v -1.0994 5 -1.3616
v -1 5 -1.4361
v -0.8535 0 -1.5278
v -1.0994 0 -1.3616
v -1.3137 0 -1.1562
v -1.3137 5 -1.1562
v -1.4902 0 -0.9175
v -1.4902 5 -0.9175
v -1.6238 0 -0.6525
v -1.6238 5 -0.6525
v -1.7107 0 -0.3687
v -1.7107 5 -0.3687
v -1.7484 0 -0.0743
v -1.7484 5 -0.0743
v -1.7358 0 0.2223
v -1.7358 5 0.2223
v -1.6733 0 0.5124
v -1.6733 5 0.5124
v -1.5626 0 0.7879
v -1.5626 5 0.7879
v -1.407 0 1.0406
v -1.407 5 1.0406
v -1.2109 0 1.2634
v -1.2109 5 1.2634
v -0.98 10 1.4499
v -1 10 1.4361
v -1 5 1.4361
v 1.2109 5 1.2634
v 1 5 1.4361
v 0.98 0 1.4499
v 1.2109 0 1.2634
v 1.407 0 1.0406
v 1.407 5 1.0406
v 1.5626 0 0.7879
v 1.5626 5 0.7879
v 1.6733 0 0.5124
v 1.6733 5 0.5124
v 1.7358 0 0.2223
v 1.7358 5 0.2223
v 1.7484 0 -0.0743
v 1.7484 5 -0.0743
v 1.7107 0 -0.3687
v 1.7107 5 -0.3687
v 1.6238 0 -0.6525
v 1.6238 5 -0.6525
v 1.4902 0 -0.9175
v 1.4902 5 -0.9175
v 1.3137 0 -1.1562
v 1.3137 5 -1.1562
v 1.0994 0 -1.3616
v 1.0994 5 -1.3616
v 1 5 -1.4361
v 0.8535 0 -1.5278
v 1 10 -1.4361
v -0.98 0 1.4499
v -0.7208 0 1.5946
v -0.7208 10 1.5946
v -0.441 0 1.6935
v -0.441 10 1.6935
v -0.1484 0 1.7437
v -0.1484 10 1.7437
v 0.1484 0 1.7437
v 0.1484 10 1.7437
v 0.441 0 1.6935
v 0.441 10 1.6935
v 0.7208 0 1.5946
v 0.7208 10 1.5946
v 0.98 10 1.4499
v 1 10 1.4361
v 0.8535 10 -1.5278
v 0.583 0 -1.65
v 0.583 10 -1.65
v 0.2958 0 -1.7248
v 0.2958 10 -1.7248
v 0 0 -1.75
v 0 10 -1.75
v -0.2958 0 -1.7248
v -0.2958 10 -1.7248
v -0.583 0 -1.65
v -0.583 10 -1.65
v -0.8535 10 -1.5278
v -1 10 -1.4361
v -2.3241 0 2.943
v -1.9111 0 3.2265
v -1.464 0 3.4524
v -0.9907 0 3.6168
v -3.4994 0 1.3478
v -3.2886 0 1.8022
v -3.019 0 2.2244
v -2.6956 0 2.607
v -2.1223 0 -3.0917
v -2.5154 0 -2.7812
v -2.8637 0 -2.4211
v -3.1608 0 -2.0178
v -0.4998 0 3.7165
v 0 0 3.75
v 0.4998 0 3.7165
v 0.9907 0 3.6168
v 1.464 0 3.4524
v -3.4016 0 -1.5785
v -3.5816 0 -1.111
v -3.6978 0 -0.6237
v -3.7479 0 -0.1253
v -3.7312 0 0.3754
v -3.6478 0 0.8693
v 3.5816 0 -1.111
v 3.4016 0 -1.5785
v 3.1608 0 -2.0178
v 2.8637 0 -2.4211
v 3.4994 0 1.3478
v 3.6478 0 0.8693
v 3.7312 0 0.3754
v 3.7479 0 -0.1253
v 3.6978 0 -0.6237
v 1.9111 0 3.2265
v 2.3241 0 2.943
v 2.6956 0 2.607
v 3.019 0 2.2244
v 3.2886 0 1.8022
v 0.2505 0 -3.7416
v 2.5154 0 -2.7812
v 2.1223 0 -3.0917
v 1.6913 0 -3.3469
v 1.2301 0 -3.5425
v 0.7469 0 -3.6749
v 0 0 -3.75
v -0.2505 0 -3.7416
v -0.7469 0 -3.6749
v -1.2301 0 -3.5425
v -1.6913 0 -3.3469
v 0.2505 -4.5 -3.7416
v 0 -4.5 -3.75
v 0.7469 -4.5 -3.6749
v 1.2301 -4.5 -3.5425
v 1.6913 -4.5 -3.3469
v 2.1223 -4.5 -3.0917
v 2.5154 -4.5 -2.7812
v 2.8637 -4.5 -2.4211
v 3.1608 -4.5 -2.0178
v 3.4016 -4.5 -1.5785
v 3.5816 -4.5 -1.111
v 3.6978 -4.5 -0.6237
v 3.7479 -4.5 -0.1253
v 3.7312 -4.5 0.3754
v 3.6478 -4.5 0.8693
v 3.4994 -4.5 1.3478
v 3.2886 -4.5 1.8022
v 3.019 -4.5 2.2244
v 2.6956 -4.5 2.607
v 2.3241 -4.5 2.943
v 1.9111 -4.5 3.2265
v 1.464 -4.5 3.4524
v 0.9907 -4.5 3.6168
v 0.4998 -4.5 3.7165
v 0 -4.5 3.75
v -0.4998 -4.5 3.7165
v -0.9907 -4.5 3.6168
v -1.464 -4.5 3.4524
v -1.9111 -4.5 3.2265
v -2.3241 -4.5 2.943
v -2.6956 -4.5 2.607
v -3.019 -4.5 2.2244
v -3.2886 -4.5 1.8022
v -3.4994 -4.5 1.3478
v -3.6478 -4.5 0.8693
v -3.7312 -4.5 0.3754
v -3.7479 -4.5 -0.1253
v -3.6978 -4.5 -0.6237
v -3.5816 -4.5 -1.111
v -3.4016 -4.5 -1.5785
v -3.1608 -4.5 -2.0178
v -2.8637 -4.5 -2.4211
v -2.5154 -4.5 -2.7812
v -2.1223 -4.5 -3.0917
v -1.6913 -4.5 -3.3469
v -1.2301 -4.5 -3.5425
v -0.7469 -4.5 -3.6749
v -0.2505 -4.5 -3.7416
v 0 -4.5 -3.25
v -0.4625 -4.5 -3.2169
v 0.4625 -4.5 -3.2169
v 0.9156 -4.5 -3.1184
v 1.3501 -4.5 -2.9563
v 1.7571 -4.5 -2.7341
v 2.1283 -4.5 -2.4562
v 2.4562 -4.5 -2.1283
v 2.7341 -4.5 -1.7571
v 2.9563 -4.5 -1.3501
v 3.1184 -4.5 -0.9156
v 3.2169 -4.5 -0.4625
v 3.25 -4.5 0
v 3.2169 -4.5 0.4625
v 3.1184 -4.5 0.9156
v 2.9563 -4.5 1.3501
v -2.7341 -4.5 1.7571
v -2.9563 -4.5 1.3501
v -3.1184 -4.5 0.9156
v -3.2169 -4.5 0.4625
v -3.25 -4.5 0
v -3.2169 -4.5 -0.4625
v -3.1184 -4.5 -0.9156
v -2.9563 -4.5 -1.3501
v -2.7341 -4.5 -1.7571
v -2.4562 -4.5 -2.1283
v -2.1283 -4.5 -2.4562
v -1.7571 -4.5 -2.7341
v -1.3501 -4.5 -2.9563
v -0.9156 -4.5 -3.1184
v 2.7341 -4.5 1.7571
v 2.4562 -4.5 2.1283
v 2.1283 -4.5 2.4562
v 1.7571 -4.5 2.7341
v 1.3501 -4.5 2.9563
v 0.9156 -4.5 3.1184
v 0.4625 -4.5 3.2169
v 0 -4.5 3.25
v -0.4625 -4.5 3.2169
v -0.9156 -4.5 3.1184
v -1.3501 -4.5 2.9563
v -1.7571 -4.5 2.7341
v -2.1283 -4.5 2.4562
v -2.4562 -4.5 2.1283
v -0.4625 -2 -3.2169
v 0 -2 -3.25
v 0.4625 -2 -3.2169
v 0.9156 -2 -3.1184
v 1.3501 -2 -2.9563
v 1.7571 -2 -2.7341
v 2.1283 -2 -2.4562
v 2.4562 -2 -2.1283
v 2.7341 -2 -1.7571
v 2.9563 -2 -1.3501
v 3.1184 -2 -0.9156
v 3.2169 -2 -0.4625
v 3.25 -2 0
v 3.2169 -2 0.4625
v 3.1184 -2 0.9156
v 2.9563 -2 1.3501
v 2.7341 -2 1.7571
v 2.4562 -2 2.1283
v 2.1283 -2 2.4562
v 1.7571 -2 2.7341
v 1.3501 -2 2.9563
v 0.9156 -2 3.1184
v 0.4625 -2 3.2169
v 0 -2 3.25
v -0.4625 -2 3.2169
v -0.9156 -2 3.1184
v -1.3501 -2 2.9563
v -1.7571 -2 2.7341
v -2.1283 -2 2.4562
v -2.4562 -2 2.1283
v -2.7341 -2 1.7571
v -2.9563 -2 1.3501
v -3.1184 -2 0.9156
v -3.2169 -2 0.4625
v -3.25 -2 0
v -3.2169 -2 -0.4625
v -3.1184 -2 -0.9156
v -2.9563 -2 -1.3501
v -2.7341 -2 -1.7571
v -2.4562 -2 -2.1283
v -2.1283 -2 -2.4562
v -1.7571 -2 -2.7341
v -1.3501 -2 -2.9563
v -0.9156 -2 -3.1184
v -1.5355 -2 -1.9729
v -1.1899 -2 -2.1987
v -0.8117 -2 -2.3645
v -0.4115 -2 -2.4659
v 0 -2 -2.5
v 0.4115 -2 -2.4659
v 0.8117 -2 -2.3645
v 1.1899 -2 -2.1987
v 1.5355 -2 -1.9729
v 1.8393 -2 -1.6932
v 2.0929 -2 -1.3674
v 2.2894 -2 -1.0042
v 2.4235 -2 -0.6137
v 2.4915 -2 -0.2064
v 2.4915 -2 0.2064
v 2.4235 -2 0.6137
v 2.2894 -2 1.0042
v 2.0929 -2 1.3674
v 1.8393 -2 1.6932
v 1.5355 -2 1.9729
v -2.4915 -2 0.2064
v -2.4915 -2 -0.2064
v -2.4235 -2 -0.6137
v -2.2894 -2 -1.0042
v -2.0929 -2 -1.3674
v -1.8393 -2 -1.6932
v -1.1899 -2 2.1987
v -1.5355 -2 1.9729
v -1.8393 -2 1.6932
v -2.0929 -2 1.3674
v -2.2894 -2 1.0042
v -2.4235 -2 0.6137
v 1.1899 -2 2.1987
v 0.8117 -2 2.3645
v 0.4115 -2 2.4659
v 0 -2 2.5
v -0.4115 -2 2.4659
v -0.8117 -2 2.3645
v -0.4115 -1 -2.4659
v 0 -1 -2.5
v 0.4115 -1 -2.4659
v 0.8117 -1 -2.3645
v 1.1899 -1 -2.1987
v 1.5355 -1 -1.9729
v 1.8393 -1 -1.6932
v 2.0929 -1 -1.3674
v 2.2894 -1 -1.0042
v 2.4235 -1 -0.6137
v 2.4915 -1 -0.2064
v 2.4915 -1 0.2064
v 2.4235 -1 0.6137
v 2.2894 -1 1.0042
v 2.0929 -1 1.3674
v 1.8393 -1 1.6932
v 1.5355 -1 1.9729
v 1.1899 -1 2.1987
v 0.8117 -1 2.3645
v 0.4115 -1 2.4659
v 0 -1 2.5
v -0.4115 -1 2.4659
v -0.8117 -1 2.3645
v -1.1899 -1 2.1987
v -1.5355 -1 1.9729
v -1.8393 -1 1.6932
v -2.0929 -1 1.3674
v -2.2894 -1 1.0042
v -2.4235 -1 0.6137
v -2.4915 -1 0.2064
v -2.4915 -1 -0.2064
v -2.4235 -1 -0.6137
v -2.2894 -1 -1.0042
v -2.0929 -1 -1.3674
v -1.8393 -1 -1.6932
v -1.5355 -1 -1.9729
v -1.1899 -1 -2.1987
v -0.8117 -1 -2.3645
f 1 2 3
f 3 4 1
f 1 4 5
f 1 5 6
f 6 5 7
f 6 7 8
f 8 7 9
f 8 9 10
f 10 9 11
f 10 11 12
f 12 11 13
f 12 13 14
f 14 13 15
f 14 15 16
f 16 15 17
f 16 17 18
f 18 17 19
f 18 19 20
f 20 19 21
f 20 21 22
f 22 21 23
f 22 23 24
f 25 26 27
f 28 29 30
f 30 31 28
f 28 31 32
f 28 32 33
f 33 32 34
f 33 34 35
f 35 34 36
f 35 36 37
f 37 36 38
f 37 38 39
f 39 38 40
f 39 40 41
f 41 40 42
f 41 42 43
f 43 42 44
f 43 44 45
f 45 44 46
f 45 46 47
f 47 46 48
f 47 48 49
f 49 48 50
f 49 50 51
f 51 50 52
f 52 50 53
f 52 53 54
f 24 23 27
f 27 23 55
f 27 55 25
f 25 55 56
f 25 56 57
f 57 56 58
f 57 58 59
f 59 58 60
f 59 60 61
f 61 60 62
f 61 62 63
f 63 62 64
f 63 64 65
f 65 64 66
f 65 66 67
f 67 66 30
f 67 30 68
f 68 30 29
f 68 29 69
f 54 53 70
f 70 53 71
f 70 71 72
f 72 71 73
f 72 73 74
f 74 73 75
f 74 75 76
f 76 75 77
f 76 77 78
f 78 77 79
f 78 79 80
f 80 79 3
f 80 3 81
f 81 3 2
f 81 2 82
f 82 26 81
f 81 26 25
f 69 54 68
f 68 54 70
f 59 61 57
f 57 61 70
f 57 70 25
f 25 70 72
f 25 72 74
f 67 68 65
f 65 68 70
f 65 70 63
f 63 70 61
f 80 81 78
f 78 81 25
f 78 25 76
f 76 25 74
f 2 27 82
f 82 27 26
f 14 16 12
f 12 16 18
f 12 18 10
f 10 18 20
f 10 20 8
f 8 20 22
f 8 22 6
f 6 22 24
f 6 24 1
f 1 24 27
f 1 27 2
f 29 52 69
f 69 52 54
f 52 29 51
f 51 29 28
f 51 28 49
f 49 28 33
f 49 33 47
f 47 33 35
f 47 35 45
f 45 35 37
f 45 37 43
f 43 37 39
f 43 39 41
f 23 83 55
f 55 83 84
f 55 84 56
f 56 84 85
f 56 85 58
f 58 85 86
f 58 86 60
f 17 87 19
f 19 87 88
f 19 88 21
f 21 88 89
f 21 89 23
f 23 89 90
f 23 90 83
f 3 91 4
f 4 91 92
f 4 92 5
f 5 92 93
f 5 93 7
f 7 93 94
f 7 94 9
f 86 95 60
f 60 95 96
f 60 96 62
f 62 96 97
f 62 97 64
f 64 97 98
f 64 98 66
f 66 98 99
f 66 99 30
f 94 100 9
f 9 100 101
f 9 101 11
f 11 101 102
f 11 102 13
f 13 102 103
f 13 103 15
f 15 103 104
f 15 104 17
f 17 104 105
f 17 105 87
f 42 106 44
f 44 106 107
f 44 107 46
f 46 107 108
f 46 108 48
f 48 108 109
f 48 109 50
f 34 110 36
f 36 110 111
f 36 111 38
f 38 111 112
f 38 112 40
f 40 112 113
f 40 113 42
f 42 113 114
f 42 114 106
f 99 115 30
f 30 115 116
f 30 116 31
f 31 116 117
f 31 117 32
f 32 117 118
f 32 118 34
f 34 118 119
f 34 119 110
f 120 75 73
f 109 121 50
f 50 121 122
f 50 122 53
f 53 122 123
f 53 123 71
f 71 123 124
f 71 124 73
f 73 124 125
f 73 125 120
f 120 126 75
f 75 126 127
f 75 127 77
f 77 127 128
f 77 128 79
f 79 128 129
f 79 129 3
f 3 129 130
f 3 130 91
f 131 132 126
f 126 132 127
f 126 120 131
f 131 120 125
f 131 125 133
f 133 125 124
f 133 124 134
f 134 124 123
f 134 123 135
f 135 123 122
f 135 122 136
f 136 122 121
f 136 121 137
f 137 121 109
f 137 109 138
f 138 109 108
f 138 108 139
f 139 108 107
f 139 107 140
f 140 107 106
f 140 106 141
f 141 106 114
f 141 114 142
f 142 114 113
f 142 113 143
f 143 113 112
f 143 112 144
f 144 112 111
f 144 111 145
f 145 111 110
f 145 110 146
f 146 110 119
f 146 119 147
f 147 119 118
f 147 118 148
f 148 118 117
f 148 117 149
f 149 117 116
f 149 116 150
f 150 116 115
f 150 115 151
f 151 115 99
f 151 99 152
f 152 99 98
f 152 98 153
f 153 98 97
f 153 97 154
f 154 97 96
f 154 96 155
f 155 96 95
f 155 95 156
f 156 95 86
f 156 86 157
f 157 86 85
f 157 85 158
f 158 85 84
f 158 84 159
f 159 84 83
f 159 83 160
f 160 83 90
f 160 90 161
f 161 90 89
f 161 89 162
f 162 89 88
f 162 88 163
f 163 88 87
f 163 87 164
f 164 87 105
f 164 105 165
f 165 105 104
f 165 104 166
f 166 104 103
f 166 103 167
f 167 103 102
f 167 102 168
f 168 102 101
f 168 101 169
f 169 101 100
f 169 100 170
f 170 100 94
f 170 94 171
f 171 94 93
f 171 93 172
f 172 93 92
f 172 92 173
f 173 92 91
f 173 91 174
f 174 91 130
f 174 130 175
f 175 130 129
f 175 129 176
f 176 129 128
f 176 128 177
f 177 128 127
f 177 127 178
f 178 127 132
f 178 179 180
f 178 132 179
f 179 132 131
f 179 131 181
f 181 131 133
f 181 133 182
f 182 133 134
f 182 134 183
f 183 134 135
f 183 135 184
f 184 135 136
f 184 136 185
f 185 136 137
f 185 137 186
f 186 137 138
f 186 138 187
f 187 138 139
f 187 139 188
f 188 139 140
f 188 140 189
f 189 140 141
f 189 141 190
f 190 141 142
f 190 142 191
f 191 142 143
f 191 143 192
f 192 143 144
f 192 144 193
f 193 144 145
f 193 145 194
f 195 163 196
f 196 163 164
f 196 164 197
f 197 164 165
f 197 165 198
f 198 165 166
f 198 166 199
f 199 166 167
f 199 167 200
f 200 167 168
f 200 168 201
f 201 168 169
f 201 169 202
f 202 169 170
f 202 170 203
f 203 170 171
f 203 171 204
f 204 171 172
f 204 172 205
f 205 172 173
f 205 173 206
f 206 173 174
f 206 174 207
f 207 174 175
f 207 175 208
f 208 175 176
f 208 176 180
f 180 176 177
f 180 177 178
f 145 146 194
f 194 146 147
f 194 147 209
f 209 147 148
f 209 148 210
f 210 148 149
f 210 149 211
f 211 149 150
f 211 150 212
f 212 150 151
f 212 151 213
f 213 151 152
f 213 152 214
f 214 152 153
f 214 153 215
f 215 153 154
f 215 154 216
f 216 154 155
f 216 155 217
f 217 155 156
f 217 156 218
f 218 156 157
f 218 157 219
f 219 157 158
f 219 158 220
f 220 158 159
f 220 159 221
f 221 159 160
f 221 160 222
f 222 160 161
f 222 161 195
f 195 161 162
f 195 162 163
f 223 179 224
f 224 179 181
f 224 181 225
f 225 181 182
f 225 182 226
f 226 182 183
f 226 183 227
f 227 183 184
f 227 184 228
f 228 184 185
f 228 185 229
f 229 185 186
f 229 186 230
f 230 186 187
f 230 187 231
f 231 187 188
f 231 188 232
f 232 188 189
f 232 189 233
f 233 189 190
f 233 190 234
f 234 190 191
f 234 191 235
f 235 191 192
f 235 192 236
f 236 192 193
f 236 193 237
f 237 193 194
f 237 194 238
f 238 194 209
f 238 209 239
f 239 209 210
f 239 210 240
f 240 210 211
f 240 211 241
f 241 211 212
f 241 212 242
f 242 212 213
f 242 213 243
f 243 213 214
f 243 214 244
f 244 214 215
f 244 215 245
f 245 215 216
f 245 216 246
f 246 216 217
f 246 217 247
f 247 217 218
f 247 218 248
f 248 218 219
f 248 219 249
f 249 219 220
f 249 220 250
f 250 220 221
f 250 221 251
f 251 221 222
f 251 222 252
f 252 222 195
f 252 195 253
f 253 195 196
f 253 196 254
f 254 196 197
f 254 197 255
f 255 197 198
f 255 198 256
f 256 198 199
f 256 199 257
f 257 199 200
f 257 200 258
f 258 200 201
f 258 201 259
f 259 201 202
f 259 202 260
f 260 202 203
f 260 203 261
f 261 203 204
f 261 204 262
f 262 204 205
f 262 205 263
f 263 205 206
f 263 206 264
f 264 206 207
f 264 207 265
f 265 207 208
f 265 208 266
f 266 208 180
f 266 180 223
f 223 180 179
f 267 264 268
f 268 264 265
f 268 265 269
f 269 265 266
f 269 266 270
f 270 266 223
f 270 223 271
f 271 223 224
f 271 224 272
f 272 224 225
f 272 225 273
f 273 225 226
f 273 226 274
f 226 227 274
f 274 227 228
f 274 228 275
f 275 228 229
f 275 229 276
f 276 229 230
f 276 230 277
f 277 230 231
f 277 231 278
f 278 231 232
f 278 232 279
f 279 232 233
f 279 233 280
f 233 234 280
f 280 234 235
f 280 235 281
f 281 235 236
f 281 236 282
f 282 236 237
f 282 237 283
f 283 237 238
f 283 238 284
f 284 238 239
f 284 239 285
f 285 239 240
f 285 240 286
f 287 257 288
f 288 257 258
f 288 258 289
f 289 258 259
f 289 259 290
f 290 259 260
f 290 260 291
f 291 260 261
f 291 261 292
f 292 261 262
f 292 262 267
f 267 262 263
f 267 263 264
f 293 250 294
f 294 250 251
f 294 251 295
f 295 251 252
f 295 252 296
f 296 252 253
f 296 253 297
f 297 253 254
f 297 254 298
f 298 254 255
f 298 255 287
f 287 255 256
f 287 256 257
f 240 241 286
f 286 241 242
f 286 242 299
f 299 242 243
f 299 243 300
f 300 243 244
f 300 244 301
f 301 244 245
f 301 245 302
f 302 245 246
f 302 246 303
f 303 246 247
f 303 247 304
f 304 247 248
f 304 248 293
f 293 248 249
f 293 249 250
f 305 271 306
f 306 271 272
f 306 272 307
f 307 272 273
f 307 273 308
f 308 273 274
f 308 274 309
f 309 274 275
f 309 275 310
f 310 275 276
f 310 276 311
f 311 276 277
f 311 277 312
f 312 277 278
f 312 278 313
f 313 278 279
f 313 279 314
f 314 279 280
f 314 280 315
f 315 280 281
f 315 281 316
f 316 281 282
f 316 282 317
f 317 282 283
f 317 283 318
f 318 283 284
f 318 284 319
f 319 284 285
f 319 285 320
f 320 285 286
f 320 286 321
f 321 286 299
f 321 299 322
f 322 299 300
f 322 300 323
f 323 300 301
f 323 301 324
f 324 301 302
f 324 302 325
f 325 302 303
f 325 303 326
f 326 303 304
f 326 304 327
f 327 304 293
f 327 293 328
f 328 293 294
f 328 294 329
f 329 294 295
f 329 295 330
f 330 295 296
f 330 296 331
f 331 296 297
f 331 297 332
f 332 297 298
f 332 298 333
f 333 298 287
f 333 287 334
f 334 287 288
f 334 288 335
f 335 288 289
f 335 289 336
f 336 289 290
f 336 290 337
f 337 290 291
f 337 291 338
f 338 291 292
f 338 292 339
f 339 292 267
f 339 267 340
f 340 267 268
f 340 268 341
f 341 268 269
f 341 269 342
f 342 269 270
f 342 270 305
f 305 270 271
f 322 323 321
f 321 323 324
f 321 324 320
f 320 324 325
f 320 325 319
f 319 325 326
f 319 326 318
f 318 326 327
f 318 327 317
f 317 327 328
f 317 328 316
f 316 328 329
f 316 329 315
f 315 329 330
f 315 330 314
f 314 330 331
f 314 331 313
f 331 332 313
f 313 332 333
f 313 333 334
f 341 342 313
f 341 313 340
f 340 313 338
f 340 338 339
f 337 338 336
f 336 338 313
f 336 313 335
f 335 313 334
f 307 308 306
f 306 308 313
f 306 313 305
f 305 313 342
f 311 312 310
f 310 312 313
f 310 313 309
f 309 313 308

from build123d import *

# Parameters (mm, degrees)
SKETCH1_R           = 1.75
BOSS_EXTRUDE1_DEPTH = 10
CUT_EXTRUDE1_DEPTH  = 5
SKETCH3_R           = 3.75
BOSS_EXTRUDE2_DEPTH = 4.5
SKETCH4_R           = 3.25
CUT_EXTRUDE2_DEPTH  = 2.5
SKETCH5_R           = 2.5
CUT_EXTRUDE3_DEPTH  = 1


with BuildPart() as part:
    # Sketch1 → Boss-Extrude1 (new body)
    with BuildSketch(Plane(origin=(0, 0, 0), x_dir=(1, 0, 0), z_dir=(0, 1, 0))):
        Circle(SKETCH1_R)
    extrude(amount=BOSS_EXTRUDE1_DEPTH)

    # Sketch2 → Cut-Extrude1 (cut)
    with BuildSketch(Plane(origin=(0, 10, 0), x_dir=(1, 0, 0), z_dir=(0, 1, 0))):
        with BuildLine():
            Line((-1, 1.436140662), (-1, -1.436140662))
            ThreePointArc((-1, -1.436140662), (-1.75, 0), (-1, 1.436140662))
        make_face()
        with BuildLine():
            Line((1, 1.436140662), (1, -1.436140662))
            ThreePointArc((1, -1.436140662), (1.75, 0), (1, 1.436140662))
        make_face()
    extrude(amount=-CUT_EXTRUDE1_DEPTH, mode=Mode.SUBTRACT)

    # Sketch3 → Boss-Extrude2 (add)
    with BuildSketch(Plane.XZ):
        Circle(SKETCH3_R)
    extrude(amount=BOSS_EXTRUDE2_DEPTH)

    # Sketch4 → Cut-Extrude2 (cut)
    with BuildSketch(Plane.XZ.offset(4.5)):
        Circle(SKETCH4_R)
    extrude(amount=-CUT_EXTRUDE2_DEPTH, mode=Mode.SUBTRACT)

    # Sketch5 → Cut-Extrude3 (cut)
    with BuildSketch(Plane.XZ.offset(2)):
        Circle(SKETCH5_R)
    extrude(amount=-CUT_EXTRUDE3_DEPTH, mode=Mode.SUBTRACT)


solid = part.part
